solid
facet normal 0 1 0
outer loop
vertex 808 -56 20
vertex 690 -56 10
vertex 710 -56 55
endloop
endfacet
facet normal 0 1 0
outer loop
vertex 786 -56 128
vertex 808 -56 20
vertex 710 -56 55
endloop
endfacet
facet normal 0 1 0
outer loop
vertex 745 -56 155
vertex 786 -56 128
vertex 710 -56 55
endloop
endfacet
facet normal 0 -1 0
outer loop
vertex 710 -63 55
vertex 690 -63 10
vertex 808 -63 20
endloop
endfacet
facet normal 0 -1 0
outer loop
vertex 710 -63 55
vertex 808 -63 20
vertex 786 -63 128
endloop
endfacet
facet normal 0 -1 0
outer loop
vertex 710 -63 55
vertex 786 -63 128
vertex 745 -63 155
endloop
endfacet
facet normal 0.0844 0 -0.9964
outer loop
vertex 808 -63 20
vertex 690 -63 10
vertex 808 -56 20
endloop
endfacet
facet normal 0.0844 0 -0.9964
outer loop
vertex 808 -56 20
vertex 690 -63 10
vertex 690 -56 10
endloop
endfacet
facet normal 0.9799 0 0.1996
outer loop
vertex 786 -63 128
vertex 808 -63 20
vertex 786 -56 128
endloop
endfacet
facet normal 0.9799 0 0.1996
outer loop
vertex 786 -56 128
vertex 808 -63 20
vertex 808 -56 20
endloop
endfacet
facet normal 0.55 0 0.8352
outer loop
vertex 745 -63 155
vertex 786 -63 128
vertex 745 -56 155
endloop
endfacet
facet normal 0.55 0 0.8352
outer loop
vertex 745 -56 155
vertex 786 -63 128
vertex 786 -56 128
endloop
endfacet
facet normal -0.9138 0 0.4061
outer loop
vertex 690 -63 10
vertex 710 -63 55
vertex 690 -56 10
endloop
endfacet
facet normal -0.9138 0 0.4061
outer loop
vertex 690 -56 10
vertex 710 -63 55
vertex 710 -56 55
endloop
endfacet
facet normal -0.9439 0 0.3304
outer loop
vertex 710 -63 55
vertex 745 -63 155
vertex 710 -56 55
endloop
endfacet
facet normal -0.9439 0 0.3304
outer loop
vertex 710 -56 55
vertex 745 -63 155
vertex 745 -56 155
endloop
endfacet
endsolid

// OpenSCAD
polyhedron(points=[[690.0, -56.0, 10.0], [808.0, -56.0, 20.0], [786.0, -56.0, 128.0], [745.0, -56.0, 155.0], [710.0, -56.0, 55.0], [690.0, -63.0, 10.0], [808.0, -63.0, 20.0], [786.0, -63.0, 128.0], [745.0, -63.0, 155.0], [710.0, -63.0, 55.0]], faces=[[1, 0, 4], [2, 1, 4], [3, 2, 4], [9, 5, 6], [9, 6, 7], [9, 7, 8], [6, 5, 1], [1, 5, 0], [7, 6, 2], [2, 6, 1], [8, 7, 3], [3, 7, 2], [5, 9, 0], [0, 9, 4], [9, 8, 4], [4, 8, 3]], convexity=30);
